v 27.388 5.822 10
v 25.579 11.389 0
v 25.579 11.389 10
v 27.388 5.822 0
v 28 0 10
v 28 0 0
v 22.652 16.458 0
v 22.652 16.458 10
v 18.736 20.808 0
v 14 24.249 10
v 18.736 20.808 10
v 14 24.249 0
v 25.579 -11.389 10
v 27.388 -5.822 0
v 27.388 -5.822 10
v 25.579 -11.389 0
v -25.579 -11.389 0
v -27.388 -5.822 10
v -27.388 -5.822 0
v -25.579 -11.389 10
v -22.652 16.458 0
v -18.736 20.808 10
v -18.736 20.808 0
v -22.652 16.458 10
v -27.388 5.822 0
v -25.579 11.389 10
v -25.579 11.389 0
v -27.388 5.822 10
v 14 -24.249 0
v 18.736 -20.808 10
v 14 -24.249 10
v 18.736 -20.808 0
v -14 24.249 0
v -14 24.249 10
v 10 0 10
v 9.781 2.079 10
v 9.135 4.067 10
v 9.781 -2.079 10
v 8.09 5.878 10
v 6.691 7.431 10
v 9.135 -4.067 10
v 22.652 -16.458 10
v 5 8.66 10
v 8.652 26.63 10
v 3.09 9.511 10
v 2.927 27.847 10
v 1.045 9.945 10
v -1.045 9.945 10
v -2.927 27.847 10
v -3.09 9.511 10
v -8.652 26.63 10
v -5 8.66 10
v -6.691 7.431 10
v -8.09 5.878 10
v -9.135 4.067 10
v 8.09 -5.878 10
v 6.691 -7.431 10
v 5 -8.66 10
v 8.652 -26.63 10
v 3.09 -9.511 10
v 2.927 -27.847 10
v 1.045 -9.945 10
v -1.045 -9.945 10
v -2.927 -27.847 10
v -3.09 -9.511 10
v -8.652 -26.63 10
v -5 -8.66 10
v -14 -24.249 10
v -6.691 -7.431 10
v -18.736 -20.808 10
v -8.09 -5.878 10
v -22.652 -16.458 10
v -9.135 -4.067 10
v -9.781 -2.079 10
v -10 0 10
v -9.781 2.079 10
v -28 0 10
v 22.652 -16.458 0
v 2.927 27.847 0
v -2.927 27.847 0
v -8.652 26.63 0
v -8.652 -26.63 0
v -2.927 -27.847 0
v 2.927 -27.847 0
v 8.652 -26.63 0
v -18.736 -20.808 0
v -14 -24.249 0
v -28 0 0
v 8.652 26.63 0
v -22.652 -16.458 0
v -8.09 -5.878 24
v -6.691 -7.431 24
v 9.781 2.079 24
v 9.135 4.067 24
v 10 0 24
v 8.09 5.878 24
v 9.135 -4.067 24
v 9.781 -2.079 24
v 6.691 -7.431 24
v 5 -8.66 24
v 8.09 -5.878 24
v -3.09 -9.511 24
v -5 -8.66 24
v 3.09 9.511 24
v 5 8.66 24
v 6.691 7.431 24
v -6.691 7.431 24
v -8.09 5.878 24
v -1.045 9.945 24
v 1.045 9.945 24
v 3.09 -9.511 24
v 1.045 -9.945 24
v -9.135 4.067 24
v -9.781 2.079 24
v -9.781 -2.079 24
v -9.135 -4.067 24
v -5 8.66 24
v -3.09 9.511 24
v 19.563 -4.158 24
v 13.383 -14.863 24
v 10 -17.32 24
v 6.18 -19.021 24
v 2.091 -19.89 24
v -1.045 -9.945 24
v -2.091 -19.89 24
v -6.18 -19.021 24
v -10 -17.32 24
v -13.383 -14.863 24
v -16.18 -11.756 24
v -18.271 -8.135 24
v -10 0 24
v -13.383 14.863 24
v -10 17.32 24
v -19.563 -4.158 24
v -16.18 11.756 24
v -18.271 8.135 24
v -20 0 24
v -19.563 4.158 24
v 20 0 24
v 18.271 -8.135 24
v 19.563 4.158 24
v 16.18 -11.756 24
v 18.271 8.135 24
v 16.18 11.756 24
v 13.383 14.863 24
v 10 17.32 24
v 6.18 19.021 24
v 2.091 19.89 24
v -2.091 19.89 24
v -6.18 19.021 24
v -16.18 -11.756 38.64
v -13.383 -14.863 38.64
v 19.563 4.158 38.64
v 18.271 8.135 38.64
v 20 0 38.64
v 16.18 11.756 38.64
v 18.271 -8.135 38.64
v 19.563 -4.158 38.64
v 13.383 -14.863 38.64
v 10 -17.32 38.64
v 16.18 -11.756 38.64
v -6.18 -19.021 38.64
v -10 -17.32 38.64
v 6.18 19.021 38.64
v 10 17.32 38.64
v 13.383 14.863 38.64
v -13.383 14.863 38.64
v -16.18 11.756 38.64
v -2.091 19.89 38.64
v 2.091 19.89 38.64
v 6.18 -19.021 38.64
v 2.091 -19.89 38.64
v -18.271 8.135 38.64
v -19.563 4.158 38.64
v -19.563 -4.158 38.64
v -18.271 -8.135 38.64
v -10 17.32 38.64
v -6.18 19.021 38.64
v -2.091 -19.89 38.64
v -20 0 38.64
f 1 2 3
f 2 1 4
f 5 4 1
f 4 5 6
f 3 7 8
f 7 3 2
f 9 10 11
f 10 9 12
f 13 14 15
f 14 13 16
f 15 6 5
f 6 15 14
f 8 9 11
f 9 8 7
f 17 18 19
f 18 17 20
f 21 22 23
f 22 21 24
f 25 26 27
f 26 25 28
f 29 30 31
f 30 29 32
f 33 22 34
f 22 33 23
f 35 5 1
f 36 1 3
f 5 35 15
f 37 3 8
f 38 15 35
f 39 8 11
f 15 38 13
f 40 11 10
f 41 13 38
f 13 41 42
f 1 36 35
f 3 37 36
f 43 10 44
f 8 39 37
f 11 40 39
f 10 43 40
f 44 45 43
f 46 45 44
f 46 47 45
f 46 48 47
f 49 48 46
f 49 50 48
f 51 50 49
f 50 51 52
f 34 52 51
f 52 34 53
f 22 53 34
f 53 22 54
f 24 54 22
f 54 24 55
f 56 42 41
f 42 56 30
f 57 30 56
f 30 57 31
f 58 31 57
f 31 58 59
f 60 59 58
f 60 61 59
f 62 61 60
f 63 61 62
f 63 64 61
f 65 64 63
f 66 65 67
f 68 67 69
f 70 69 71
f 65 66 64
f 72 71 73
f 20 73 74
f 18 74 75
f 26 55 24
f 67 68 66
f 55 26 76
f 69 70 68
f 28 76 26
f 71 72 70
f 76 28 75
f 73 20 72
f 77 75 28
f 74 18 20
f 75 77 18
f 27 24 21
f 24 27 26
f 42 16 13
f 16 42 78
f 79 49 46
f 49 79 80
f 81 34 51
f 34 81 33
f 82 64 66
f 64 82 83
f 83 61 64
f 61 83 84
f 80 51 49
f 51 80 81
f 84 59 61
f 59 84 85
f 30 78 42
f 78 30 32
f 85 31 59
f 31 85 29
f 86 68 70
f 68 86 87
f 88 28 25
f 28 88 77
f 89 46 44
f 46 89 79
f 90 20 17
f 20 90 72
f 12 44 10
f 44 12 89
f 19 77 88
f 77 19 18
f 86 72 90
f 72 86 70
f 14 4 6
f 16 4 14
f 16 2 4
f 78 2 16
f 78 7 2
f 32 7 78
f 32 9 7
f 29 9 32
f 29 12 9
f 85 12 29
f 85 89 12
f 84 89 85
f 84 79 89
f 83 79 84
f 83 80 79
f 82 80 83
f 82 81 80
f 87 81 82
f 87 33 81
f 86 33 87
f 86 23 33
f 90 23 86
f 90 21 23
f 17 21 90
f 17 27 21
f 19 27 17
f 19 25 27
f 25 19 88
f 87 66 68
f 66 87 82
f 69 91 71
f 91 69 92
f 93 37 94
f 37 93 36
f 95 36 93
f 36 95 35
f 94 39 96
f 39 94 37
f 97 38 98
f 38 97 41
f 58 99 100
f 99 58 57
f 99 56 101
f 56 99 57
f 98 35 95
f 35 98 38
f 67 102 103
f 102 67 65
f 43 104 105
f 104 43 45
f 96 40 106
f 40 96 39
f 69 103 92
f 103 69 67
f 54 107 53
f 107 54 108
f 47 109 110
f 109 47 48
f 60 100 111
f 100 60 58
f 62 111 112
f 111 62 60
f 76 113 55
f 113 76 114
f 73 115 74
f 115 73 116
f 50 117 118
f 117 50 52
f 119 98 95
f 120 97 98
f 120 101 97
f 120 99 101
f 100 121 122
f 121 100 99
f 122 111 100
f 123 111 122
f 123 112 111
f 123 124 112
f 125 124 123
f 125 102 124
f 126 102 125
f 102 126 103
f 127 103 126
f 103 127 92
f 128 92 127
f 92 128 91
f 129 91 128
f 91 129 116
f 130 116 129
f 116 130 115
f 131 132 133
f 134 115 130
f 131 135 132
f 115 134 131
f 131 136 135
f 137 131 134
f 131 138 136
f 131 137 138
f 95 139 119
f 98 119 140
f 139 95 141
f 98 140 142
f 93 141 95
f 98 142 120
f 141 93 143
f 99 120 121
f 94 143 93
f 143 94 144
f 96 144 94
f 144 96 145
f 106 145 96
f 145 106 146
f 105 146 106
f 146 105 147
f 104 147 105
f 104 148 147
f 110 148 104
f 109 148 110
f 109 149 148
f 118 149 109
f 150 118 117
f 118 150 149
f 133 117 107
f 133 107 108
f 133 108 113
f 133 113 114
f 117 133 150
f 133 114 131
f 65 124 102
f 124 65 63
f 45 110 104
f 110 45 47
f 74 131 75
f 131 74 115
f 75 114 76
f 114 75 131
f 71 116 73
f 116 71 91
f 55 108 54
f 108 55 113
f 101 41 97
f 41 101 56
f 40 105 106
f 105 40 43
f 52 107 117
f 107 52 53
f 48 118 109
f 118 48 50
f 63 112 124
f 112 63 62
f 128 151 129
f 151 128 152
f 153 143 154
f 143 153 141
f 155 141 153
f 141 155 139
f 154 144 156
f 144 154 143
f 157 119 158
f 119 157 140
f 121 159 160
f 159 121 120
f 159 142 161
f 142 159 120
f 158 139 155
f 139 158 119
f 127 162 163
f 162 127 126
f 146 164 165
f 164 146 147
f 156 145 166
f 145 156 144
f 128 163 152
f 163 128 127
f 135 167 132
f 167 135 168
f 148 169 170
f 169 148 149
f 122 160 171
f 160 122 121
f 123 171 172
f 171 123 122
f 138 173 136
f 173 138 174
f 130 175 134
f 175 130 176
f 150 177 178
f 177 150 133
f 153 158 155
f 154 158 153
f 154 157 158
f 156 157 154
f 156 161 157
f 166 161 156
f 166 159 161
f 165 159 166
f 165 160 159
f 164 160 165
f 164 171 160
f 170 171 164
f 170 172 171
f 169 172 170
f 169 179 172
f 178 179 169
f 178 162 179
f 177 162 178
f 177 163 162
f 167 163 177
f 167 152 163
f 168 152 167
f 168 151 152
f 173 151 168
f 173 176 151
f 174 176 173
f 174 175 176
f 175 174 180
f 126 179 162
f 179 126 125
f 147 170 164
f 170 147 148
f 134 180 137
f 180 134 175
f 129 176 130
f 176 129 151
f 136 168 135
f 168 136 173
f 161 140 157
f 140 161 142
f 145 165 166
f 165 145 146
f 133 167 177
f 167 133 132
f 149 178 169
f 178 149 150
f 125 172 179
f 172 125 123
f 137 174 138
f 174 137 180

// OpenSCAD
/* doodle-meta {"version":1,"parameters":{"overall_width":{"label":"Overall width","description":"Diameter of the widest section (base flange)","unit":"mm","feature":"body_width"},"overall_height":{"label":"Overall height","description":"Total height of the knob from base to top","unit":"mm","feature":"body_height"},"base_diameter":{"label":"Base diameter","description":"Diameter of the bottom flange","unit":"mm","feature":"base_flange"},"base_height":{"label":"Base height","description":"Height of the bottom flange section","unit":"mm","feature":"base_flange"},"neck_diameter":{"label":"Neck diameter","description":"Diameter of the narrow middle section","unit":"mm","feature":"neck"},"neck_height":{"label":"Neck height","description":"Height of the narrow middle section","unit":"mm","feature":"neck"},"head_diameter":{"label":"Head diameter","description":"Diameter of the top head section","unit":"mm","feature":"head"},"head_height":{"label":"Head height","description":"Height of the top head section","unit":"mm","feature":"head"}},"features":{"body_width":{"kind":"dimension","axis":"x","label":"Overall width"},"body_height":{"kind":"dimension","axis":"z","label":"Overall height"},"base_flange":{"kind":"region","label":"Base flange","min":[{"parameter":"overall_width","scale":-0.5},{"parameter":"overall_width","scale":-0.5},0],"max":[{"parameter":"overall_width","scale":0.5},{"parameter":"overall_width","scale":0.5},{"parameter":"base_height"}]},"neck":{"kind":"region","label":"Neck","min":[{"parameter":"neck_diameter","scale":-0.5},{"parameter":"neck_diameter","scale":-0.5},{"parameter":"base_height"}],"max":[{"parameter":"neck_diameter","scale":0.5},{"parameter":"neck_diameter","scale":0.5},{"parameter":"base_height","offset":0,"parameter":"neck_height"}]},"head":{"kind":"region","label":"Head","min":[{"parameter":"head_diameter","scale":-0.5},{"parameter":"head_diameter","scale":-0.5},{"parameter":"base_height","offset":0,"parameter":"neck_height"}],"max":[{"parameter":"head_diameter","scale":0.5},{"parameter":"head_diameter","scale":0.5},{"parameter":"overall_height"}]}}} */

// Overall dimensions
overall_width = 56.0;
overall_height = 38.64;

// Section dimensions (derived from profile analysis)
base_diameter = 56.0;
base_height = 10.0;

neck_diameter = 20.0;
neck_height = 14.0;

head_diameter = 40.0;
head_height = 14.64;

// Derived positions
neck_z_start = base_height;
head_z_start = base_height + neck_height;

// Main body construction
module knob_body() {
    // Base flange
    translate([0, 0, 0])
        cylinder(h = base_height, d = base_diameter, center = false);
    
    // Neck
    translate([0, 0, neck_z_start])
        cylinder(h = neck_height, d = neck_diameter, center = false);
    
    // Head
    translate([0, 0, head_z_start])
        cylinder(h = head_height, d = head_diameter, center = false);
}

// Instantiate the design
knob_body();
